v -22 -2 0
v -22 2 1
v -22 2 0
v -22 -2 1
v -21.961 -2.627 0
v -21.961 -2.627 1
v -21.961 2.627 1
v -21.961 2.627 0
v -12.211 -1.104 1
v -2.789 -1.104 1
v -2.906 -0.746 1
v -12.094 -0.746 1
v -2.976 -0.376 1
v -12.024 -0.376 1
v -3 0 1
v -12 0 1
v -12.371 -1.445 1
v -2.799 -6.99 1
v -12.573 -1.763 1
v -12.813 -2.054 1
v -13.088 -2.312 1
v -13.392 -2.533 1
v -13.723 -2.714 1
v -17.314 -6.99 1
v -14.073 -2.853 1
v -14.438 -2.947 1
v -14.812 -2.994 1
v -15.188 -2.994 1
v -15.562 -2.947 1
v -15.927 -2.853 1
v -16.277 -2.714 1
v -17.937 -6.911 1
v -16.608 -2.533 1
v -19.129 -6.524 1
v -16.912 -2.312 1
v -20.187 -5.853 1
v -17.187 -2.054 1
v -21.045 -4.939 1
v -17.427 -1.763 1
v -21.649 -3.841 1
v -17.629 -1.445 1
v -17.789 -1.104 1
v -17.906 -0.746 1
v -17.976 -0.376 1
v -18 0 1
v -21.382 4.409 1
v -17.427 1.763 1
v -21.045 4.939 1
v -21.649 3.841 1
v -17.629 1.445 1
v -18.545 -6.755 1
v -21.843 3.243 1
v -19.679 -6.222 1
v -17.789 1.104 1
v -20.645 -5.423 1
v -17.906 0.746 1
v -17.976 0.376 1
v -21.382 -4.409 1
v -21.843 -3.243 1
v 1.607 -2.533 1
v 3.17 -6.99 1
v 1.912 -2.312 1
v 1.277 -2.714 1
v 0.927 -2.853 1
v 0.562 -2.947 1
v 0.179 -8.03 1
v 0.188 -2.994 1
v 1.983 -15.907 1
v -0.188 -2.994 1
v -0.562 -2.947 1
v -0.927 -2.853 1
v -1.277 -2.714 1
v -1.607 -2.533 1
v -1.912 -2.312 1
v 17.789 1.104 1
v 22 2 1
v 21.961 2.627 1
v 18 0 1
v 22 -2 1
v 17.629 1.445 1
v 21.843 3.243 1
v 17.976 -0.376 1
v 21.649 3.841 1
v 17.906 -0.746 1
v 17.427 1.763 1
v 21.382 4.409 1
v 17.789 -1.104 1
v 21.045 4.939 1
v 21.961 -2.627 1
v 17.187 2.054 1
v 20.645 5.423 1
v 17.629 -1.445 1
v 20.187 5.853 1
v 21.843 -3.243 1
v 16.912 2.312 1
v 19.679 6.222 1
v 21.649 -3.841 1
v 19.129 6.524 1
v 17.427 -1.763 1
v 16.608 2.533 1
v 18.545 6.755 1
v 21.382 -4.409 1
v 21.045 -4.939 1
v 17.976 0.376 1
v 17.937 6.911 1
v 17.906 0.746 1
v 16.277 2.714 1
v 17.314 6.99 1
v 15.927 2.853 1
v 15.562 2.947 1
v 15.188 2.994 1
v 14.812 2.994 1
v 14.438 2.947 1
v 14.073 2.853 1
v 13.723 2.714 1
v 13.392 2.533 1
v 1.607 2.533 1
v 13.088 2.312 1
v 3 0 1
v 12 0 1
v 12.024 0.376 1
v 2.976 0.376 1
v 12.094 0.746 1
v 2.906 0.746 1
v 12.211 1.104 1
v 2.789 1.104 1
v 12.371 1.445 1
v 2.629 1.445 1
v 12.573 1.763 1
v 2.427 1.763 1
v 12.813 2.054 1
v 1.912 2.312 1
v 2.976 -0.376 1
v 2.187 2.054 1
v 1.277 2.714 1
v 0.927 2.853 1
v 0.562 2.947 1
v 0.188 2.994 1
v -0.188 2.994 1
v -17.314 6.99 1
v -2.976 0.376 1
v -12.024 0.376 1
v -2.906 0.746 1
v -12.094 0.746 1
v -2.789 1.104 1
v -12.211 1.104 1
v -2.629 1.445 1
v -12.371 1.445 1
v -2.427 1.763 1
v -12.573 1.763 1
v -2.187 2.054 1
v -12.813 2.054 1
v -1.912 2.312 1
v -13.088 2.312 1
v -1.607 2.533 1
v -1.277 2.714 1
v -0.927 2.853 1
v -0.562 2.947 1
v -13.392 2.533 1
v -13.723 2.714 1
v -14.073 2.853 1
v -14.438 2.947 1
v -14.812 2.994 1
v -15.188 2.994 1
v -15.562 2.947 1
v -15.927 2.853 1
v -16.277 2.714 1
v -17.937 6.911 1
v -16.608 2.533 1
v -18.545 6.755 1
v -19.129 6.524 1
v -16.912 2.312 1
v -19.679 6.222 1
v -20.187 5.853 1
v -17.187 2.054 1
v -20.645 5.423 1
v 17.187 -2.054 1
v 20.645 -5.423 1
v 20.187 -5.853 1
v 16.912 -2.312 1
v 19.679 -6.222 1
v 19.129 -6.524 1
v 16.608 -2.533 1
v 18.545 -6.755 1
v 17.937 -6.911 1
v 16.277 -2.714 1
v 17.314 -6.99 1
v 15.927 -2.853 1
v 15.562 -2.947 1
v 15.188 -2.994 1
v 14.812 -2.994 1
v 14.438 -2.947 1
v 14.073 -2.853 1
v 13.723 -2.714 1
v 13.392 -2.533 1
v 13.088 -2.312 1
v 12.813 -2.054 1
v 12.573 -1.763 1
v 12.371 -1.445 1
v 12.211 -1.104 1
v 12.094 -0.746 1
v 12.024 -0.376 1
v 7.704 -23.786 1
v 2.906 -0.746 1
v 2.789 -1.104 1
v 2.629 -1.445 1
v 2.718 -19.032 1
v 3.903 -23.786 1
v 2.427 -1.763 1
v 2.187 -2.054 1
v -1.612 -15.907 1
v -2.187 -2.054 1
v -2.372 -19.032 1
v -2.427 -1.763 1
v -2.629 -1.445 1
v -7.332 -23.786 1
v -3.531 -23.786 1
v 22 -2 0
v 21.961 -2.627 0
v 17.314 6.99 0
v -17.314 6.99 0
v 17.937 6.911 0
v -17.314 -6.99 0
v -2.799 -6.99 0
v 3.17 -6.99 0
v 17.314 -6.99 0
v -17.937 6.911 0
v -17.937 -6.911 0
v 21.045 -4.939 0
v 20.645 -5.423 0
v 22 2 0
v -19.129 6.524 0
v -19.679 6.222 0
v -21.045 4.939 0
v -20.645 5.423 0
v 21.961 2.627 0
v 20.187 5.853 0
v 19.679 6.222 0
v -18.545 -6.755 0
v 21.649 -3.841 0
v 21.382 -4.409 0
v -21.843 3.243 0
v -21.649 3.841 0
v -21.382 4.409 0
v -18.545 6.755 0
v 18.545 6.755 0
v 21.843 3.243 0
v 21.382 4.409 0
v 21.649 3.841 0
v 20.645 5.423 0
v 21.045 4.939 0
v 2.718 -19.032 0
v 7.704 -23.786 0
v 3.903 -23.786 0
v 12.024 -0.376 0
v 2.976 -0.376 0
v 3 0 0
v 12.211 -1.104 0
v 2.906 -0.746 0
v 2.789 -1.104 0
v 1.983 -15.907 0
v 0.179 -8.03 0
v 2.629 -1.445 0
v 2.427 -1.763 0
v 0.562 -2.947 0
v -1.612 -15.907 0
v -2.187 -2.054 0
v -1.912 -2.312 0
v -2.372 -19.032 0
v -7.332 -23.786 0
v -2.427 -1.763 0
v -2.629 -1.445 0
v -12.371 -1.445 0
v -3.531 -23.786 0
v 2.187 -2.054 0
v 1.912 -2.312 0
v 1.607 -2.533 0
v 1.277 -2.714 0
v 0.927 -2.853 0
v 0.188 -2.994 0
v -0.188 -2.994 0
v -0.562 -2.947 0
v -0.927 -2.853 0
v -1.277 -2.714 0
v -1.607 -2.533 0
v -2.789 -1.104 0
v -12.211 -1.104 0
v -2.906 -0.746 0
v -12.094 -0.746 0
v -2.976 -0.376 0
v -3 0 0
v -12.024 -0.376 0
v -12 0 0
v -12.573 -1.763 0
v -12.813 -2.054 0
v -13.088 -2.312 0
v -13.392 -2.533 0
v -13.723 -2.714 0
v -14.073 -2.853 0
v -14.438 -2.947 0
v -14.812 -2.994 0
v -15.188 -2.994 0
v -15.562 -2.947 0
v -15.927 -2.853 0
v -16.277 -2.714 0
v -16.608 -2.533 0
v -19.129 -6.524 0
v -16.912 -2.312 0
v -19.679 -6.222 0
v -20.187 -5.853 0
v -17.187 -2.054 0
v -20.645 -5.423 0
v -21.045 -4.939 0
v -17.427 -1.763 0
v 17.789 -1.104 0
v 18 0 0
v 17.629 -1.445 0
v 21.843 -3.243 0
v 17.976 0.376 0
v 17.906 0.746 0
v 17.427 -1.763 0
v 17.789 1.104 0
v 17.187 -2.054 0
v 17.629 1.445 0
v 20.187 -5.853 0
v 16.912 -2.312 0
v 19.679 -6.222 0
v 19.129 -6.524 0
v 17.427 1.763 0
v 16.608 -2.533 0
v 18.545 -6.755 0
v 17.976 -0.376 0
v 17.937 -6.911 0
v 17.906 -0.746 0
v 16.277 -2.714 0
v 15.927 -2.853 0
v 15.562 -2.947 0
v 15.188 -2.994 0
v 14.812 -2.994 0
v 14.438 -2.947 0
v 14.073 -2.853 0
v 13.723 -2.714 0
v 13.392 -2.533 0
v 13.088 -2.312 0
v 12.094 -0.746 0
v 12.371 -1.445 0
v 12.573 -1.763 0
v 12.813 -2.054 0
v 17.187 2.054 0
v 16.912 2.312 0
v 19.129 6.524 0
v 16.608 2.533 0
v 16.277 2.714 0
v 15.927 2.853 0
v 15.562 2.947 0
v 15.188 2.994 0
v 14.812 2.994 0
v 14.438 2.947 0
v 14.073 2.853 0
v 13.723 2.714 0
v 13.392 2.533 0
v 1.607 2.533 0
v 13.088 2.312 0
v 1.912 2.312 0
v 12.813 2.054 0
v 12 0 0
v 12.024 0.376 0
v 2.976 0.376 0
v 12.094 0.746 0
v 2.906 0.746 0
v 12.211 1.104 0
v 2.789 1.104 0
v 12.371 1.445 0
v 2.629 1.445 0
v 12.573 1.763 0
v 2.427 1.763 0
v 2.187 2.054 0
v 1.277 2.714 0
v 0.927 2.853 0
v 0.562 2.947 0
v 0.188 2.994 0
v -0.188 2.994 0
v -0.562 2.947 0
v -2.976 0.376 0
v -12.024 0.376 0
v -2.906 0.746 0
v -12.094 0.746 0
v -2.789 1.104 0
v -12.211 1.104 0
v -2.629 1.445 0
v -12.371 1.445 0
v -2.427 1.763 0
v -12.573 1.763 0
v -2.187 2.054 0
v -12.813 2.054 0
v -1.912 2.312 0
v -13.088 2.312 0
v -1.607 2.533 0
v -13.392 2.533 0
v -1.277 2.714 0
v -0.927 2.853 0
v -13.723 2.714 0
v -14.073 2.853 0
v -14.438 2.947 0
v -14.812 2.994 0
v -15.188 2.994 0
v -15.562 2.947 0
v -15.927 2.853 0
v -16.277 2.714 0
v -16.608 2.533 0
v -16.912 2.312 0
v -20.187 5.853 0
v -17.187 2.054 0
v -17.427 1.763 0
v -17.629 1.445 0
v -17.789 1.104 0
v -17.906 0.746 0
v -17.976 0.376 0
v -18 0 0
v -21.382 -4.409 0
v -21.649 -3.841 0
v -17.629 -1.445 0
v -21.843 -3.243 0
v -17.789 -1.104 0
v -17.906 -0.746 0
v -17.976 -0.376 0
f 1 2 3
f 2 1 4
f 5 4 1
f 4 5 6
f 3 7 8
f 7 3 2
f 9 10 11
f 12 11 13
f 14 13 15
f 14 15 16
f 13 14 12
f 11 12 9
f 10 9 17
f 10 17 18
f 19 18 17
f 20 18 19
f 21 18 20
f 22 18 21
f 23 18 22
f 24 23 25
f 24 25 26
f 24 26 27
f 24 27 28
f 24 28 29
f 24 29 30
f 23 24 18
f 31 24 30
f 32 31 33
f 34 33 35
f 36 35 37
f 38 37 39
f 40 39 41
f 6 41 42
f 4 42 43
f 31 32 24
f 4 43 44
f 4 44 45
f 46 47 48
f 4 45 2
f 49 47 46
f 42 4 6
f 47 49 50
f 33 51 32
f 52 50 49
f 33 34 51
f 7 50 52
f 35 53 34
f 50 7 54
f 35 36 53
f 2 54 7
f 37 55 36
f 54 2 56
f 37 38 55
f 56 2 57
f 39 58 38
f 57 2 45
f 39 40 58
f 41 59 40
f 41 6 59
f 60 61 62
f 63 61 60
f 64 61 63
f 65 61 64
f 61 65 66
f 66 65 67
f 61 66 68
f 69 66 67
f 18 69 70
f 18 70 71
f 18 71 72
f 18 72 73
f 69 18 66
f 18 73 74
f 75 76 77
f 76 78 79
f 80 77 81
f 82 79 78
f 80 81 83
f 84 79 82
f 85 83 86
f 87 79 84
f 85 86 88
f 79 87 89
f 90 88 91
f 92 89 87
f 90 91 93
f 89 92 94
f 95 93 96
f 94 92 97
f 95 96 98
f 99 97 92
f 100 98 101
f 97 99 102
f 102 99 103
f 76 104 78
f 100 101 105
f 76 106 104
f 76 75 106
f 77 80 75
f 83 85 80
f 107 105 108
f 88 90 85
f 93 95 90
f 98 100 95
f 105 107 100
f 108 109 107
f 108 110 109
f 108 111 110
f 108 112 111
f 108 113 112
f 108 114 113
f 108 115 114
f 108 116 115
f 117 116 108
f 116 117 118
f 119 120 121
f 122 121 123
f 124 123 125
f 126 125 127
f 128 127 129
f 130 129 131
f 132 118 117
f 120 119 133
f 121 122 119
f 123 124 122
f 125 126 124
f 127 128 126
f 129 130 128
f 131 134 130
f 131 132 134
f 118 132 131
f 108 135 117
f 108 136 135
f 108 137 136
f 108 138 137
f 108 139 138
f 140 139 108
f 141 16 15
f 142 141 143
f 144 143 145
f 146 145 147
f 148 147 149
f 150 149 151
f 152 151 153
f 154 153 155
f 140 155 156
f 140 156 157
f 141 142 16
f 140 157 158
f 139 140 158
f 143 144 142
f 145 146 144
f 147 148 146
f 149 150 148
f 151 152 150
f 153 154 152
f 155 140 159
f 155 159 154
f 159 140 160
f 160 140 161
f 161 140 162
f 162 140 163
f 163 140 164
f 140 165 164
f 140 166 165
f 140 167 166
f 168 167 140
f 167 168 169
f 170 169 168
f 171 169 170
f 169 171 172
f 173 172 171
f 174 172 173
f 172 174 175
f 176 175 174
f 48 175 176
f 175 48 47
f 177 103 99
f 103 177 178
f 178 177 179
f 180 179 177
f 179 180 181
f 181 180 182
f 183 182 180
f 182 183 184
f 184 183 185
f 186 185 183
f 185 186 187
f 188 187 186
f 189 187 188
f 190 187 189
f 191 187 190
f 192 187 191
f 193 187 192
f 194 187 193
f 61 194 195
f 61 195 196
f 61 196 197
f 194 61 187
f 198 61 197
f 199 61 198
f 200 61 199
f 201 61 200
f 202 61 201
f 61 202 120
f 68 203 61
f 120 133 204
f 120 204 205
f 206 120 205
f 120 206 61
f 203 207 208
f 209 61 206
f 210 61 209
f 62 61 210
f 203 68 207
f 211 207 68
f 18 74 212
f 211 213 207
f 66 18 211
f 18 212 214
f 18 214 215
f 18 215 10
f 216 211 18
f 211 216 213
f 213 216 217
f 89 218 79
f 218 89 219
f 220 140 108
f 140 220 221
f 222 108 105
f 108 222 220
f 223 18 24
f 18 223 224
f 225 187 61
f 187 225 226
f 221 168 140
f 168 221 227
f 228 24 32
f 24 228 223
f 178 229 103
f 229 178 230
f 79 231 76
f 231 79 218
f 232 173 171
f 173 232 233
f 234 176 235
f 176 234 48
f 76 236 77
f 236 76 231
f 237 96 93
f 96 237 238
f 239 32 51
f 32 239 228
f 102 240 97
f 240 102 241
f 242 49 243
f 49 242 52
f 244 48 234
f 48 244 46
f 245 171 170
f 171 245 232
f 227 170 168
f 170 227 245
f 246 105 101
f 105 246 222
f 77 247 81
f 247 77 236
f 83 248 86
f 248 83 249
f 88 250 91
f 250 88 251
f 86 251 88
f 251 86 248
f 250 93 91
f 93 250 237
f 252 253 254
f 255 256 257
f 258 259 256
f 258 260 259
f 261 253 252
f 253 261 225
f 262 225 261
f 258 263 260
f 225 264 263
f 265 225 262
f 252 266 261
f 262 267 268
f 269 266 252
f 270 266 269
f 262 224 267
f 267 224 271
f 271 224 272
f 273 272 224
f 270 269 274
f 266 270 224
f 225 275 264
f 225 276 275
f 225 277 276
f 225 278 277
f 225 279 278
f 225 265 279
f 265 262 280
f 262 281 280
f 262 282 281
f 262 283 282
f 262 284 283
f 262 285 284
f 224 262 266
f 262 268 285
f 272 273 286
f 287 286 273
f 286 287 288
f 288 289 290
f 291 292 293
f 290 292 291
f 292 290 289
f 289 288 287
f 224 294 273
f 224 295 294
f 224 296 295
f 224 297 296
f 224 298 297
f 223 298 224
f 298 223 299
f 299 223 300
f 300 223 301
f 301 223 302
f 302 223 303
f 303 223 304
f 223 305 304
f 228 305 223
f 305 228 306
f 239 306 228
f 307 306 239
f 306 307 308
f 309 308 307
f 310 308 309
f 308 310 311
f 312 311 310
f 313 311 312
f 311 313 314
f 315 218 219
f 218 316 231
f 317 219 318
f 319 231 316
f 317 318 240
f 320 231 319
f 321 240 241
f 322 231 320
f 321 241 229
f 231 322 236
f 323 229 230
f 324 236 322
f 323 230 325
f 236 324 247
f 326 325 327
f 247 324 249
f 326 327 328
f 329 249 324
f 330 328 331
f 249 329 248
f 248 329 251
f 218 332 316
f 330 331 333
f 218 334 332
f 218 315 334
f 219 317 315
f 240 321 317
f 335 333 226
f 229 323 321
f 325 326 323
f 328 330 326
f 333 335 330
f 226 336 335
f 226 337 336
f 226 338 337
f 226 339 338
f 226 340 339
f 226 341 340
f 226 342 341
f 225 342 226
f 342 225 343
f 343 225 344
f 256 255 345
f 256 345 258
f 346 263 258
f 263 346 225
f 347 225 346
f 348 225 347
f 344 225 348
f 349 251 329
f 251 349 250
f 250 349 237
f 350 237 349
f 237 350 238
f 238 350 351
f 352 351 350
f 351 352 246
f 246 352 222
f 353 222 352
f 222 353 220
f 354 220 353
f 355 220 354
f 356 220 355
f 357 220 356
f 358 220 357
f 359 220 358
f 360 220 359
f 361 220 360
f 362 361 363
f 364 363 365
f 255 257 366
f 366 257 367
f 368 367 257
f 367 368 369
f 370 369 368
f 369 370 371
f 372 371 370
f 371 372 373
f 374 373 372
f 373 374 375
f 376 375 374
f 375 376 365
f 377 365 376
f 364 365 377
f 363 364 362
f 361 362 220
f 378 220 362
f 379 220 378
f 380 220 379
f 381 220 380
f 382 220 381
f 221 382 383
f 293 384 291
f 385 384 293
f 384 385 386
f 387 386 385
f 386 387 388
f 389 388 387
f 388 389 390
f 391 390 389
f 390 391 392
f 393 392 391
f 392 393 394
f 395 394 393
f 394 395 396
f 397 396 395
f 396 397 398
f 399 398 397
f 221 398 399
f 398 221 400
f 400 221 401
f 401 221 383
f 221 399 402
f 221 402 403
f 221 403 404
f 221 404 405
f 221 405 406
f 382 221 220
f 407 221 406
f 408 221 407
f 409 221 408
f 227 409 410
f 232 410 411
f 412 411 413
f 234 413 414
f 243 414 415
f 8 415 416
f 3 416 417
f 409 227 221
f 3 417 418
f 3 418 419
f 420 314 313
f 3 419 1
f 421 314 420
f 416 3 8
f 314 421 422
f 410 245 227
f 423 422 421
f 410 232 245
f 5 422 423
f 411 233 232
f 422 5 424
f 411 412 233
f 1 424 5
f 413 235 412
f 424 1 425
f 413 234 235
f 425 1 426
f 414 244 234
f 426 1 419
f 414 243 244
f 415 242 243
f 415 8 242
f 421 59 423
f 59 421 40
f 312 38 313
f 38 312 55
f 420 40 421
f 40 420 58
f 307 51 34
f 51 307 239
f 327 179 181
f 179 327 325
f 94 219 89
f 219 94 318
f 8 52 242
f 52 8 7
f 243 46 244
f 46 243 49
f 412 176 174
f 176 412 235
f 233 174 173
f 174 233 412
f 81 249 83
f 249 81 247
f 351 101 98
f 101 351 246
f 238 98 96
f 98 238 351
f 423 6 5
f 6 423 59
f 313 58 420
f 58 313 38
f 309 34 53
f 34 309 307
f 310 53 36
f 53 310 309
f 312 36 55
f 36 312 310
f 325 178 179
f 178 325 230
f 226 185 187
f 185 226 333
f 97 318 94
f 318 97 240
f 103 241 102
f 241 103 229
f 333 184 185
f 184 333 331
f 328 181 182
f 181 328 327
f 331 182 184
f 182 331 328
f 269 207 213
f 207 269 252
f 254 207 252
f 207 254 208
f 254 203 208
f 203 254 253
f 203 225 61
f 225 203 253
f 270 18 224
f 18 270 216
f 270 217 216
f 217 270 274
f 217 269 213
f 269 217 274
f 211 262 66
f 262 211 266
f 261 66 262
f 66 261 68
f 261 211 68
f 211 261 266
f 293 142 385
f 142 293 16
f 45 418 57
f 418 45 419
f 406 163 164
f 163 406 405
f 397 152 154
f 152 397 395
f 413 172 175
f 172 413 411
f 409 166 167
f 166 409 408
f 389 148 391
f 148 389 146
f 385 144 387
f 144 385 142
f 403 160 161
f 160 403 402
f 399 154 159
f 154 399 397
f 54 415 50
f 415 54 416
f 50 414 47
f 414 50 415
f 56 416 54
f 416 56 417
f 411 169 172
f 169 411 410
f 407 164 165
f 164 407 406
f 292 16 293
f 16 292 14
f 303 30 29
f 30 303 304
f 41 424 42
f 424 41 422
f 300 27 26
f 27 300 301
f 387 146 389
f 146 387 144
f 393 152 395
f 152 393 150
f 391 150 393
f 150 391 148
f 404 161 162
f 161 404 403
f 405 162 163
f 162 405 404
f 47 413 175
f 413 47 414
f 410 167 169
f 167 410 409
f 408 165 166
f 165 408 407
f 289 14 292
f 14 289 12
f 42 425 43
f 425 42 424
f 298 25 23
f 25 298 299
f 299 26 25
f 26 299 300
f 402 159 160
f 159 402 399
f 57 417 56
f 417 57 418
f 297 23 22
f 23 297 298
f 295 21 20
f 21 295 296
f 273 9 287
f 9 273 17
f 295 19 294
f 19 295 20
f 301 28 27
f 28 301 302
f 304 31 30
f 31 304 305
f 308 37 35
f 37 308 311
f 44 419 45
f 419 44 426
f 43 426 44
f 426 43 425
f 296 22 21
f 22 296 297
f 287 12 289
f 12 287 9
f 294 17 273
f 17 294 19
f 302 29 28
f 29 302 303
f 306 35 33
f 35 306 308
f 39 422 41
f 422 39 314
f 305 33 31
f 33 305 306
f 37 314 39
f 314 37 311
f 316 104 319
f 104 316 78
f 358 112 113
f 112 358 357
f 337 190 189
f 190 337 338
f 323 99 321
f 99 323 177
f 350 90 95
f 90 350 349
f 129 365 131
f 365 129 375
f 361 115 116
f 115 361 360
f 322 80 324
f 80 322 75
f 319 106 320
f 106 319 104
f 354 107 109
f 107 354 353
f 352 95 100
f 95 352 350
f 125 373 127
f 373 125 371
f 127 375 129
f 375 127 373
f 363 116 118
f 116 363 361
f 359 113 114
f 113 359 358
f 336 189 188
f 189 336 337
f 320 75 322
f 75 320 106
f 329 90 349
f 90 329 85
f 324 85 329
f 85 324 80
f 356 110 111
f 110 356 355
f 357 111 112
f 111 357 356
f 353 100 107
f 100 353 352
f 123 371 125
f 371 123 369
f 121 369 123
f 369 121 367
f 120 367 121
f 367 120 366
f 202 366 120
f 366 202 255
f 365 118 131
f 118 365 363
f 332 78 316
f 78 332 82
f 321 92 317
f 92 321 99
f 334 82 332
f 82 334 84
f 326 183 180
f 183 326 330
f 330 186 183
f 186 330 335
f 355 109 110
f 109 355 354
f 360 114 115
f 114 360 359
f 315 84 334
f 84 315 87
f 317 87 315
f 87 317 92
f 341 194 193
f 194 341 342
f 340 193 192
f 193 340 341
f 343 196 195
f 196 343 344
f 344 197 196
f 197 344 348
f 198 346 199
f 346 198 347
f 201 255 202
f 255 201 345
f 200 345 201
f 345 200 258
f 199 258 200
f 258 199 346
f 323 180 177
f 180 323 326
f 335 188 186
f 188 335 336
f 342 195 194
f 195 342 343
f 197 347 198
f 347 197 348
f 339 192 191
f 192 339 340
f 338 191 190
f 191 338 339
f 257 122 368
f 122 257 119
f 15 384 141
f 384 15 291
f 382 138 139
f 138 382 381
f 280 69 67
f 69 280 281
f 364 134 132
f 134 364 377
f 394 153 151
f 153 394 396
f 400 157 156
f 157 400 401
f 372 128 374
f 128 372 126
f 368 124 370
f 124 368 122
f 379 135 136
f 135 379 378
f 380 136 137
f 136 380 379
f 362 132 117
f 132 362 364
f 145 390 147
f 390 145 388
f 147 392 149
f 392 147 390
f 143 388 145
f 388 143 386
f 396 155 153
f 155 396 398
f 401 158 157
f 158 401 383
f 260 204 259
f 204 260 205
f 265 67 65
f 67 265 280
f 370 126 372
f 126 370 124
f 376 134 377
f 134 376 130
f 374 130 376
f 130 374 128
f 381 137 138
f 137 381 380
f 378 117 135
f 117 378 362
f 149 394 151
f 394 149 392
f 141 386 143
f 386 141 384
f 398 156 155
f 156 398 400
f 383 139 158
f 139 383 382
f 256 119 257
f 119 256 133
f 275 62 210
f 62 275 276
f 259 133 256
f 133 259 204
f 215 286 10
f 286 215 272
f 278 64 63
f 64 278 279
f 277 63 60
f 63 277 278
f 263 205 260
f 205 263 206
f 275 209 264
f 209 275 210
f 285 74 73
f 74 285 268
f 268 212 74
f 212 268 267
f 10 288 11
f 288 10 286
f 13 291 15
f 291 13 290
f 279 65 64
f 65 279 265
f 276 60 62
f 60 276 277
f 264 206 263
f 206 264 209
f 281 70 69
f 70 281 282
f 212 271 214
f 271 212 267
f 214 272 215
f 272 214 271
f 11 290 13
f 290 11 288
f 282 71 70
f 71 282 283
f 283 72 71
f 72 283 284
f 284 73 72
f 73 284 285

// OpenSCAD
$fn = 50;


difference() {
	union() {
		translate(v = [0, 0, 0]) {
			rotate(a = [0, 0, 0]) {
				hull() {
					translate(v = [-17.0000000000, 2.0000000000, 0]) {
						rotate(a = [0, 0, 0]) {
							translate(v = [0, 0, 0]) {
								rotate(a = [0, 0, 0]) {
									cylinder(h = 1, r = 5);
								}
							}
						}
					}
					translate(v = [17.0000000000, 2.0000000000, 0]) {
						rotate(a = [0, 0, 0]) {
							translate(v = [0, 0, 0]) {
								rotate(a = [0, 0, 0]) {
									cylinder(h = 1, r = 5);
								}
							}
						}
					}
					translate(v = [-17.0000000000, -2.0000000000, 0]) {
						rotate(a = [0, 0, 0]) {
							translate(v = [0, 0, 0]) {
								rotate(a = [0, 0, 0]) {
									cylinder(h = 1, r = 5);
								}
							}
						}
					}
					translate(v = [17.0000000000, -2.0000000000, 0]) {
						rotate(a = [0, 0, 0]) {
							translate(v = [0, 0, 0]) {
								rotate(a = [0, 0, 0]) {
									cylinder(h = 1, r = 5);
								}
							}
						}
					}
				}
			}
		}
		translate(v = [0, -5, 0]) {
			rotate(a = [0, 0, 0]) {
				linear_extrude(height = 1) {
					text(font = "DejaVu Sans Mono:style=Bold", halign = "center", size = 19.0000000000, text = "A", valign = "top");
				}
			}
		}
	}
	union() {
		translate(v = [-15.0000000000, 0.0000000000, -125.0000000000]) {
			rotate(a = [0, 0, 0]) {
				cylinder(h = 250, r = 3.0000000000);
			}
		}
		translate(v = [15.0000000000, 0.0000000000, -125.0000000000]) {
			rotate(a = [0, 0, 0]) {
				cylinder(h = 250, r = 3.0000000000);
			}
		}
		translate(v = [15.0000000000, 0.0000000000, -125.0000000000]) {
			rotate(a = [0, 0, 0]) {
				cylinder(h = 250, r = 3.0000000000);
			}
		}
		translate(v = [0, 0, -125.0000000000]) {
			rotate(a = [0, 0, 0]) {
				cylinder(h = 250, r = 3.0000000000);
			}
		}
	}
}
